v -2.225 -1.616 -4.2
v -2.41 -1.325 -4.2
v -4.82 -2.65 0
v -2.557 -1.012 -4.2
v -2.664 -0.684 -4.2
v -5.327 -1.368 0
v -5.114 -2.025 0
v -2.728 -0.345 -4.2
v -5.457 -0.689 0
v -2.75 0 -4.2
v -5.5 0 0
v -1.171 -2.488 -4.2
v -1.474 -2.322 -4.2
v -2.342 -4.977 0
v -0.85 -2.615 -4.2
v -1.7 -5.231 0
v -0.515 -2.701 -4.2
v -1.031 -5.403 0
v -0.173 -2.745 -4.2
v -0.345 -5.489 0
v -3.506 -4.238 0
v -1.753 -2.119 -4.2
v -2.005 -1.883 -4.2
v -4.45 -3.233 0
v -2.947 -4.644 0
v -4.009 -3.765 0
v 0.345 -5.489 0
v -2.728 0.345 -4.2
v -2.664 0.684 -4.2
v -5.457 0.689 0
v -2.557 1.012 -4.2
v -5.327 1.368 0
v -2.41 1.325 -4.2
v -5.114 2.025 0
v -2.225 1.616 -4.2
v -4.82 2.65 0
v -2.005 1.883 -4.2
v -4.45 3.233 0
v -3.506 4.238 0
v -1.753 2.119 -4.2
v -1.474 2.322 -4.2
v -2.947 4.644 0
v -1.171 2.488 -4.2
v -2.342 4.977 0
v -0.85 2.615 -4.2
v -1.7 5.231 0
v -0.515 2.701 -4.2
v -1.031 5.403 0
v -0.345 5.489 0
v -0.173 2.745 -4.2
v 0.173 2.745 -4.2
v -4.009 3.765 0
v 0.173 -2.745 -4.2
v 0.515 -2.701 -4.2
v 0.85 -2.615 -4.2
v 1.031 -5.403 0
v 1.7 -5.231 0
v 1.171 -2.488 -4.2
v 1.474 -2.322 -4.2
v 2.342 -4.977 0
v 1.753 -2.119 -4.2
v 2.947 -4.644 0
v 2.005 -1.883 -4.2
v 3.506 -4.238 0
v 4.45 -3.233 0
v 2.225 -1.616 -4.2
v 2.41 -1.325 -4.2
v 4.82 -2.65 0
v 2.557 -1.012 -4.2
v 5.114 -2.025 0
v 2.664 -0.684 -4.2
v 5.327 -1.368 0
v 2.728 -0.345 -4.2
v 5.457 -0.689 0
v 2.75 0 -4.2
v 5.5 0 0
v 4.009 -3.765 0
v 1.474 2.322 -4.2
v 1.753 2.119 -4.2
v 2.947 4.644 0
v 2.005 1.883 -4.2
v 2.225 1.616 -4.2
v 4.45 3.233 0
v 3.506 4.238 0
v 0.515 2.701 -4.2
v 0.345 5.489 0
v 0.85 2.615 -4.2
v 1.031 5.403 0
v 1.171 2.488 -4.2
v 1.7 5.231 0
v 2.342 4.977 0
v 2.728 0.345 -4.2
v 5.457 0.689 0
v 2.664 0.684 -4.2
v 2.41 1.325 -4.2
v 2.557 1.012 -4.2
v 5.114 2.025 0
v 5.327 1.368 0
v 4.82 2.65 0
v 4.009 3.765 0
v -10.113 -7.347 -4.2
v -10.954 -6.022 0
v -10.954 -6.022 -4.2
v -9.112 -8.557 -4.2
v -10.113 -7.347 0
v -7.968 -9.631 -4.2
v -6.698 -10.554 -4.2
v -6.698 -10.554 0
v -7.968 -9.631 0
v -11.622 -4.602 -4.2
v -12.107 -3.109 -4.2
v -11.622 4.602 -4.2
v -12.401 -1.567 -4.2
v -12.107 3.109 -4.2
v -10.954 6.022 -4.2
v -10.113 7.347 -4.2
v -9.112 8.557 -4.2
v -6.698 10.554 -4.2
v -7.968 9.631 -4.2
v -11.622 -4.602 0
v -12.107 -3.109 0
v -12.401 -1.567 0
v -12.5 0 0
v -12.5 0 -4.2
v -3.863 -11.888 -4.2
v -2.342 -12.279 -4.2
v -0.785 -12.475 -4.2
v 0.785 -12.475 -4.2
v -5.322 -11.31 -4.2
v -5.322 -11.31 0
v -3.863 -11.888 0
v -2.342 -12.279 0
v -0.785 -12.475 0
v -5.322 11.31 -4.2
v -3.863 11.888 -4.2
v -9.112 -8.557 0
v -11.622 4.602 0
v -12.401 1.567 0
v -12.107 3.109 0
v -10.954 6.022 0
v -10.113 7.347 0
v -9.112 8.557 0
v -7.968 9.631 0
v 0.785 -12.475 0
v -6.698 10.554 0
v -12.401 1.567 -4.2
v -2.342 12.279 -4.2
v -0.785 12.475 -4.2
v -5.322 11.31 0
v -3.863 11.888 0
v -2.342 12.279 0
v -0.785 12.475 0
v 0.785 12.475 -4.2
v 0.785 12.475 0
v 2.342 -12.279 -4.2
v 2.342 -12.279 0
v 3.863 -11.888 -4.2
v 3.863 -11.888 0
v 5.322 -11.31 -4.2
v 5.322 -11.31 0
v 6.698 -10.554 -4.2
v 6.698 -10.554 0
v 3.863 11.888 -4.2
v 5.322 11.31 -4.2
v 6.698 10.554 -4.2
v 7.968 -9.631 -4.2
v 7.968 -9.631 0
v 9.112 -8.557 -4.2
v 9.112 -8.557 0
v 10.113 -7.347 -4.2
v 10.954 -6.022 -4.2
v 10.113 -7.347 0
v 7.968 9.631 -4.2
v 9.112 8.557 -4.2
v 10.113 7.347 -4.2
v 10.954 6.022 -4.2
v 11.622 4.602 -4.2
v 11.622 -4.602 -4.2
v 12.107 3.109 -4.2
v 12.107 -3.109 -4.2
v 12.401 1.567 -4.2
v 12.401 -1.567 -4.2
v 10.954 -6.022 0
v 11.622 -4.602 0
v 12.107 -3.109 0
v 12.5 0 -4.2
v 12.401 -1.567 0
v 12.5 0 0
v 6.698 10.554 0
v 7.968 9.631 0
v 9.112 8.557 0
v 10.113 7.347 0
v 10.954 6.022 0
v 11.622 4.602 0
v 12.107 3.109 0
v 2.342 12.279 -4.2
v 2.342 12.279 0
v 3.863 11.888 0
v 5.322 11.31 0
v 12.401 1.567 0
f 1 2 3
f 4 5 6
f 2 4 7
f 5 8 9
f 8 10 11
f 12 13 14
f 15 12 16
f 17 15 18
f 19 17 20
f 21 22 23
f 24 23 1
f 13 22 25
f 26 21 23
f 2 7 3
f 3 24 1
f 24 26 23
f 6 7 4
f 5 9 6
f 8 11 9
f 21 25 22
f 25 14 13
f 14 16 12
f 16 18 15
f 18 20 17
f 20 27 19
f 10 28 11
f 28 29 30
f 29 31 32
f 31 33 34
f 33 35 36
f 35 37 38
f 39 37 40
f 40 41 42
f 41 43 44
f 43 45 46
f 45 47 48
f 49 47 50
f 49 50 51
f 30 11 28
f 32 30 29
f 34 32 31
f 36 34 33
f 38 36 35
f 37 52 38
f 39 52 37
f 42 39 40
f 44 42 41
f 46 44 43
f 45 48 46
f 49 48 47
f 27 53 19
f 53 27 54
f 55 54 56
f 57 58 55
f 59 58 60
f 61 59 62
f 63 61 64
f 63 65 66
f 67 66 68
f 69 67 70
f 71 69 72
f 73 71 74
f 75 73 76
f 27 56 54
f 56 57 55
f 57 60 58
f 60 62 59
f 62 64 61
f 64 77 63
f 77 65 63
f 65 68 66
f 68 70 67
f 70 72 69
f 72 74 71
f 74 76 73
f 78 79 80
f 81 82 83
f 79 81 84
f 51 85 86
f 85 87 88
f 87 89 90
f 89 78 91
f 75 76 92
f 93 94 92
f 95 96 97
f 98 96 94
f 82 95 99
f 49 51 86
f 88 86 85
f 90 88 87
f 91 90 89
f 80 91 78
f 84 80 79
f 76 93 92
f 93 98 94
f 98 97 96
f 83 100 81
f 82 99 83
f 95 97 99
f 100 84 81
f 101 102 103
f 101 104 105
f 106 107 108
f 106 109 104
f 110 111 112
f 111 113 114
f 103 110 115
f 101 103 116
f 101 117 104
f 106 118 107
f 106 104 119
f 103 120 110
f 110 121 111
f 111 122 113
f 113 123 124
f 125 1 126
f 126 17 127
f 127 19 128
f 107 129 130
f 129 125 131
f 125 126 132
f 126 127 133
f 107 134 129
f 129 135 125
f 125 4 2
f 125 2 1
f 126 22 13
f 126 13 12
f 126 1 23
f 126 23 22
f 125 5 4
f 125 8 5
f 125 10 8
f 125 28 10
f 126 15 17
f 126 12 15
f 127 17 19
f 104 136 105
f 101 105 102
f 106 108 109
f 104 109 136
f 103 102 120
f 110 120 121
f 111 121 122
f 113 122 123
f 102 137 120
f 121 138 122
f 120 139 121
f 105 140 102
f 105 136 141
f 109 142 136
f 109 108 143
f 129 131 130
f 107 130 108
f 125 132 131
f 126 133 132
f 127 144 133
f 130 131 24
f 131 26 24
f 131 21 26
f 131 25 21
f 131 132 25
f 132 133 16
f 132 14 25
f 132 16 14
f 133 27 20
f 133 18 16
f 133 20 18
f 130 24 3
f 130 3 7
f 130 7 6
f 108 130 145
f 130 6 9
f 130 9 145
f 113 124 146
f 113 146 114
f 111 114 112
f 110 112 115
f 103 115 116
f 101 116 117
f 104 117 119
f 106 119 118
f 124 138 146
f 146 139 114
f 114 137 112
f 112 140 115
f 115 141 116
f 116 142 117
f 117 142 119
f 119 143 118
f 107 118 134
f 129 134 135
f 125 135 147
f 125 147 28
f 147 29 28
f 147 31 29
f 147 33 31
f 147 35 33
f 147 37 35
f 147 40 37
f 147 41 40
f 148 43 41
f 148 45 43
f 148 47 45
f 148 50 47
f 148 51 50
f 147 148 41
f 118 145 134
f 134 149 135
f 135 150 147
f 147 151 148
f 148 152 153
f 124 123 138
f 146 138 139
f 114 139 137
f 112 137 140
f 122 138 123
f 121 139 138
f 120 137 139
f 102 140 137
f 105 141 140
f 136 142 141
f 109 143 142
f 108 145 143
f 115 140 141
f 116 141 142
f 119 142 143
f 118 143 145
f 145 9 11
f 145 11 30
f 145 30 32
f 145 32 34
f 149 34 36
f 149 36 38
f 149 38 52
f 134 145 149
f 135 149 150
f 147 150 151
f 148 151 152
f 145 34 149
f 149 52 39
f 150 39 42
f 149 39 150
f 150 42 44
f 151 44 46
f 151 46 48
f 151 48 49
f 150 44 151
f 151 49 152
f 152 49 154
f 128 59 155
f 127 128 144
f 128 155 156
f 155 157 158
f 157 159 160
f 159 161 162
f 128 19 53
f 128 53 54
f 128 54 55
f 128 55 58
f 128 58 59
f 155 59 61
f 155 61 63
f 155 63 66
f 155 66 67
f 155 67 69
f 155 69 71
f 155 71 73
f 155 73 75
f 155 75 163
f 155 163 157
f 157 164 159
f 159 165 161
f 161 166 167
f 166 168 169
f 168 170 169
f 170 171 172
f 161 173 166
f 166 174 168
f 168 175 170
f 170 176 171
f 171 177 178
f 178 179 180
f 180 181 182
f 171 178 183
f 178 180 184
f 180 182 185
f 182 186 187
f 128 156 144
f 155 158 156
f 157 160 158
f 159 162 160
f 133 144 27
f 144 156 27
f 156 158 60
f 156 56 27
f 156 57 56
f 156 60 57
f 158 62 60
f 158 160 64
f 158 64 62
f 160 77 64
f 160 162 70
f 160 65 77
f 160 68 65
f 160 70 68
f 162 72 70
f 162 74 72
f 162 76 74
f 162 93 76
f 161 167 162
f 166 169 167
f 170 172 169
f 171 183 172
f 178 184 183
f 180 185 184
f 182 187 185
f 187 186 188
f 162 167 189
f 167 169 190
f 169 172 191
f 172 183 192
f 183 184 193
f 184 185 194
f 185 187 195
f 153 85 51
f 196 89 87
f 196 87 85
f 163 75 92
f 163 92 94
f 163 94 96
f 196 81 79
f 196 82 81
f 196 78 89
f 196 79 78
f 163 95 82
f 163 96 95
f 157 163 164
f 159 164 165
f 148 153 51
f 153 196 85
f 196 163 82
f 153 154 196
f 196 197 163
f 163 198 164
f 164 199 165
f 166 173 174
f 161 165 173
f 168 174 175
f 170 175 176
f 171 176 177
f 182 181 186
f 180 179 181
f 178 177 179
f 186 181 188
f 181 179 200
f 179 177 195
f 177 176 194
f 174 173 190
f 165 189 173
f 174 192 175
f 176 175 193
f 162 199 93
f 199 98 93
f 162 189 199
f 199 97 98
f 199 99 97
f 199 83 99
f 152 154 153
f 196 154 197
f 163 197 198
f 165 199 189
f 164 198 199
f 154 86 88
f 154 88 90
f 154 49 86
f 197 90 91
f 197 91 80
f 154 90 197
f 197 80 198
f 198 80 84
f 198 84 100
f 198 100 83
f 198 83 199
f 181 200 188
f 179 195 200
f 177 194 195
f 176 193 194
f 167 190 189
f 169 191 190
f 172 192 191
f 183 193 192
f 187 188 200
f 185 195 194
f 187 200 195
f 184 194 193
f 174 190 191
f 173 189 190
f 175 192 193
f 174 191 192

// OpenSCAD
$fn = 50;

difference() {
	union() {
		translate(v = [0, 0, -4.2]) {
			cylinder(h = 4.2, r = 12.5);
		}
	}
	union() {
		translate(v = [0, 0, 0]) {
			rotate(a = [0, 0, 0]) {
				difference() {
					union() {
						translate(v = [0, 0, -7.2]) {
							cylinder(h = 7.2, r = 2.25);
						}
						translate(v = [0, 0, -4.2]) {
							cylinder(h = 4.2, r1 = 2.75, r2 = 5.5);
						}
						translate(v = [0, 0, -7.2]) {
							cylinder(h = 7.2, r = 2.75);
						}
						translate(v = [0, 0, -7.2]) {
							cylinder(h = 7.2, r = 2.25);
						}
					}
					union();
				}
			}
		}
	}
}
